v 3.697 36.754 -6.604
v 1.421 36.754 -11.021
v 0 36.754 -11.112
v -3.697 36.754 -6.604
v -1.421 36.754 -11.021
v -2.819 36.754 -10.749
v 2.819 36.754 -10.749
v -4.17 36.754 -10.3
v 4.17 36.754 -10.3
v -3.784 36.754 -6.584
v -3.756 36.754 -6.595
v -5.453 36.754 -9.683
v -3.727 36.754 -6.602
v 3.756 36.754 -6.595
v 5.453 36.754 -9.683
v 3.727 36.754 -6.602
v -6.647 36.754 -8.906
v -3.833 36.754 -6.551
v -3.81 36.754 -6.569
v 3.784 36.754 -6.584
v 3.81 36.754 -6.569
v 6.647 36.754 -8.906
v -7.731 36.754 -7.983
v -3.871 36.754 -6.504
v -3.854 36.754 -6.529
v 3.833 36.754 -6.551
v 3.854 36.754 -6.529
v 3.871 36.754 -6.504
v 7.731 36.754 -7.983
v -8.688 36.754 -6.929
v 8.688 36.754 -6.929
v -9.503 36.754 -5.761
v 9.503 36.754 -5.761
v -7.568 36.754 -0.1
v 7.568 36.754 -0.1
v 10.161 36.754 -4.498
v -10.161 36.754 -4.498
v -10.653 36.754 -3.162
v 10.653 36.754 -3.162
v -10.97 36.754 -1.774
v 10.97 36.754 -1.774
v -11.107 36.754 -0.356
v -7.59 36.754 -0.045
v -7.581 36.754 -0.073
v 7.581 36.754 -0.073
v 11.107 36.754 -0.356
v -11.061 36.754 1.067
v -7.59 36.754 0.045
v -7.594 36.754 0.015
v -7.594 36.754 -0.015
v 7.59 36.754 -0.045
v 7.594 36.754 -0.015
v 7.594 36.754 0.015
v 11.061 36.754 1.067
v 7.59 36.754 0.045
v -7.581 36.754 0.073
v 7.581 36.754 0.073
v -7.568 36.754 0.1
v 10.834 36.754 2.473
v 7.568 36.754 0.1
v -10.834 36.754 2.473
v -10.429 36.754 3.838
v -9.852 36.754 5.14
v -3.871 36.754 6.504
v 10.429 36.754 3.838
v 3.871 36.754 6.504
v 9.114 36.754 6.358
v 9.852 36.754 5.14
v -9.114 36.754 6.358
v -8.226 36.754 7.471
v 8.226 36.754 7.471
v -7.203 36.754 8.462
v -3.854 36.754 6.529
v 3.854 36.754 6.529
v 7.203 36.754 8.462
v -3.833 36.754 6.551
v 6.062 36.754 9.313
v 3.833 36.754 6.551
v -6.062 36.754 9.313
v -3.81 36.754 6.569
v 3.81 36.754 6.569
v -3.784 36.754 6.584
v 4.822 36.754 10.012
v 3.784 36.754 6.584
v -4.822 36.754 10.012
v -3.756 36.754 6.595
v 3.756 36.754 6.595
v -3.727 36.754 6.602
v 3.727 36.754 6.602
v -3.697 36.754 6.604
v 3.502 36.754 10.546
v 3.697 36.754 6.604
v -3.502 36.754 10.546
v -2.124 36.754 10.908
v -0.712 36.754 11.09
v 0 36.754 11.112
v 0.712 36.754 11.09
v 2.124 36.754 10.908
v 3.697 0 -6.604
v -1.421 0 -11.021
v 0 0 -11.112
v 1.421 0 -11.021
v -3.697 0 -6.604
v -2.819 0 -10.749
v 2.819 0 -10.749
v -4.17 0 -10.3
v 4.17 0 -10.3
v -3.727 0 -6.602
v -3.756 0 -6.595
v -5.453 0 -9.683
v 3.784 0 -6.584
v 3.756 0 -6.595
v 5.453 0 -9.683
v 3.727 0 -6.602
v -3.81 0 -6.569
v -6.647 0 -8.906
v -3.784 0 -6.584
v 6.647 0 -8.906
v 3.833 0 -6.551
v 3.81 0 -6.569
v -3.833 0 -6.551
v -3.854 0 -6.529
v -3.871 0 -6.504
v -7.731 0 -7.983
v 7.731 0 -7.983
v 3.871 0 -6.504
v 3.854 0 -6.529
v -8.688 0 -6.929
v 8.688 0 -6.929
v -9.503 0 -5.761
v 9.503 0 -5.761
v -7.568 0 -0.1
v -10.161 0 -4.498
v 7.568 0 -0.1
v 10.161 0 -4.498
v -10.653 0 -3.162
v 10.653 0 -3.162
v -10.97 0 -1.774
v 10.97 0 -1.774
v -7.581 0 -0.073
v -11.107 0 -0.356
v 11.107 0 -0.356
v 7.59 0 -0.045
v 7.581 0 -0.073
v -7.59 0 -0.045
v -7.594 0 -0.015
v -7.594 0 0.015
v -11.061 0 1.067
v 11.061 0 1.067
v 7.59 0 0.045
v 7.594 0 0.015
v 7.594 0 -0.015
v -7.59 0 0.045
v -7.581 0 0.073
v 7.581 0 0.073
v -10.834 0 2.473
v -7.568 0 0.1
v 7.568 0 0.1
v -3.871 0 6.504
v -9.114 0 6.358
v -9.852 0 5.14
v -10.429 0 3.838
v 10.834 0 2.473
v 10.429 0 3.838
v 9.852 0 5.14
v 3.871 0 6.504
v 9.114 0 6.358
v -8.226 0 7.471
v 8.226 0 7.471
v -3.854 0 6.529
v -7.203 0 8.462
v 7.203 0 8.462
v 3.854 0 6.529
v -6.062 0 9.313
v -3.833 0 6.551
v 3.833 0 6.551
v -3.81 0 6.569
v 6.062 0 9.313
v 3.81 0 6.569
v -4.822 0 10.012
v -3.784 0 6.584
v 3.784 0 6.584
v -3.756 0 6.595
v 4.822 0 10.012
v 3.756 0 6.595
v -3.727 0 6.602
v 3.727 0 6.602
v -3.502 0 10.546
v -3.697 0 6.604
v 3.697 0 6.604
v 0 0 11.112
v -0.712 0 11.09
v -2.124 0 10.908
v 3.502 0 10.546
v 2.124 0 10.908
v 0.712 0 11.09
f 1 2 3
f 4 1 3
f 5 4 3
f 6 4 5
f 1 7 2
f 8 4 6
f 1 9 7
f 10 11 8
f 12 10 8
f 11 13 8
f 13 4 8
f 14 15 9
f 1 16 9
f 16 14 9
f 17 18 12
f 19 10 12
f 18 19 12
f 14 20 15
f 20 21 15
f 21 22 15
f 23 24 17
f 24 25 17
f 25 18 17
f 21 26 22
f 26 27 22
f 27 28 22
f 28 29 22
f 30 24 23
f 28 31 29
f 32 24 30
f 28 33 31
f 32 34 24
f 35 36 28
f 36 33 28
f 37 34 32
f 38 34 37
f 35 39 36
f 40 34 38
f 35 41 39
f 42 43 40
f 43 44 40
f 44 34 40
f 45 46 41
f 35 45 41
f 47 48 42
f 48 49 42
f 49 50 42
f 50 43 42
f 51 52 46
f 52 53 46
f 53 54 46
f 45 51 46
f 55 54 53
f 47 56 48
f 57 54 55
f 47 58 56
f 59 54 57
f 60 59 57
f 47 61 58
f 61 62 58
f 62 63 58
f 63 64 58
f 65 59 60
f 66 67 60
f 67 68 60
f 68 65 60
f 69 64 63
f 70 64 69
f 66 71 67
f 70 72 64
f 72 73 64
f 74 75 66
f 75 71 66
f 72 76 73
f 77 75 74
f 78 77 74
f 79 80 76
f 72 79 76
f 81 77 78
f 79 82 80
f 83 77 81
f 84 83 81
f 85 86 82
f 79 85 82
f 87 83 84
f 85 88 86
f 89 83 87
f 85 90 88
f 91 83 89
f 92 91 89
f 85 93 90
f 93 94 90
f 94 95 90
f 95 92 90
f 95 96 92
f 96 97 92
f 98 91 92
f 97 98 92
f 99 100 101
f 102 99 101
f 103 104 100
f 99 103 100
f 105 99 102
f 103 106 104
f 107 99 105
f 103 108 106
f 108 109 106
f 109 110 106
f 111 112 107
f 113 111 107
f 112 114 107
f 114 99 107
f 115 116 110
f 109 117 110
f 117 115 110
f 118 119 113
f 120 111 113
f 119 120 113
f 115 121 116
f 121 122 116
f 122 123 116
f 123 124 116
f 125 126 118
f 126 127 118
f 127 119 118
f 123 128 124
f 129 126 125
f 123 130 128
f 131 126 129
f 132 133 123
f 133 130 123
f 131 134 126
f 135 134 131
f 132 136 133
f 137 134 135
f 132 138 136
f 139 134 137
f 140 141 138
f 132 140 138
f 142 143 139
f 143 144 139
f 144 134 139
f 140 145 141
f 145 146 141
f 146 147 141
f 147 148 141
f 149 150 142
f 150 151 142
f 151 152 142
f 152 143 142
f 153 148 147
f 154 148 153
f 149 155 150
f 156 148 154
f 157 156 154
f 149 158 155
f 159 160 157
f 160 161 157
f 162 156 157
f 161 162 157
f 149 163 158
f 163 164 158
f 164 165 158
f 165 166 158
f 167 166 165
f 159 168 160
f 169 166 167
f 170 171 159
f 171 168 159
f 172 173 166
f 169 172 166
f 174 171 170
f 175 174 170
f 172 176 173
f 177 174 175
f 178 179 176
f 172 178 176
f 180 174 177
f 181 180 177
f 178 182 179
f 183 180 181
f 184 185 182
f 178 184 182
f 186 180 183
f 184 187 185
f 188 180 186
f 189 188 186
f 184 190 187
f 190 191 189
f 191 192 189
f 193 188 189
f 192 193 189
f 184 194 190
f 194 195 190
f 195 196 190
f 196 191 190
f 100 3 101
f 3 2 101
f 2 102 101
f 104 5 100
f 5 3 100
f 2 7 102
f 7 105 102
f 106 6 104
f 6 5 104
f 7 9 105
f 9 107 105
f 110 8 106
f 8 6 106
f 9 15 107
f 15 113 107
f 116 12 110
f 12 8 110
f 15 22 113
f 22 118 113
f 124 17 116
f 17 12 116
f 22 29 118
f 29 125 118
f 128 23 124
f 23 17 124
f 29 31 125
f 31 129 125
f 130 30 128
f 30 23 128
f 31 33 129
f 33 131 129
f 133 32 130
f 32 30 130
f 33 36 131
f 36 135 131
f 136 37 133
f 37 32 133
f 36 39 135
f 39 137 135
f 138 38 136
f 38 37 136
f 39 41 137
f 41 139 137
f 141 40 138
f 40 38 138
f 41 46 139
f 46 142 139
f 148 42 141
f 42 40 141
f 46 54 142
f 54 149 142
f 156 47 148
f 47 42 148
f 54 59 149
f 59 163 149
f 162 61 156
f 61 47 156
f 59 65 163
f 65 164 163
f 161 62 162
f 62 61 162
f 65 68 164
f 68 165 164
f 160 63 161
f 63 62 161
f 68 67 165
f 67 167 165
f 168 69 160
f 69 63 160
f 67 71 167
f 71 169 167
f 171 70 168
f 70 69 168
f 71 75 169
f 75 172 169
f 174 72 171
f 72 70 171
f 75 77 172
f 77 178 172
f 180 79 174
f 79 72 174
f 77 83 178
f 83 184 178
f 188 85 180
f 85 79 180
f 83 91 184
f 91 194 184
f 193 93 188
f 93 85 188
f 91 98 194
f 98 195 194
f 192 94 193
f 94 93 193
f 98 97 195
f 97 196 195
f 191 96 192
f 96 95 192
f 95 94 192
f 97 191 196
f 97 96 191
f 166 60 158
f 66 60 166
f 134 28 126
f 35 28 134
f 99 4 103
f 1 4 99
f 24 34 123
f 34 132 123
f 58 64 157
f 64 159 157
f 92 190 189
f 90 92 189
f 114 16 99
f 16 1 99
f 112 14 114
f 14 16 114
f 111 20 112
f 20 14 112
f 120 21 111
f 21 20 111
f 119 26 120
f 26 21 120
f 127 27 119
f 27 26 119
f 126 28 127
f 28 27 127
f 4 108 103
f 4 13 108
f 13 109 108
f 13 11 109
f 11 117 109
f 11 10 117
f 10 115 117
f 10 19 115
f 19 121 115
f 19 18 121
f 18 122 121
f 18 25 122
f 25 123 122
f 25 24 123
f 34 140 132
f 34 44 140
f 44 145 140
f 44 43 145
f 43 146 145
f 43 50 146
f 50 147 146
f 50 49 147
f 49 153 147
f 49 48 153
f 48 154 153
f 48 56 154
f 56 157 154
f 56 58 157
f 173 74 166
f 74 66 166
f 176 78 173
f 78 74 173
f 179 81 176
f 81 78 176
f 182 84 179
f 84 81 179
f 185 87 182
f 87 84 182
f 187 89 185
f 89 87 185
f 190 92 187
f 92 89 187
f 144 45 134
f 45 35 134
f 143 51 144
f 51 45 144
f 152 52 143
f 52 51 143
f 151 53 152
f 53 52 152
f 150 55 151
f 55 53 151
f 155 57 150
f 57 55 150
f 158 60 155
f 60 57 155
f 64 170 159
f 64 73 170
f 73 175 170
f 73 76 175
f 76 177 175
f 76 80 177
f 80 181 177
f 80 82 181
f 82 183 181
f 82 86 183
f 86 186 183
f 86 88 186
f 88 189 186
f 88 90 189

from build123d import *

# Parameters (mm, degrees)
SKETCH1_R           = 11.1125
BOSS_EXTRUDE1_DEPTH = 36.7538
FILLET1_R           = 0.2


with BuildPart() as part:
    # Sketch1 → Boss-Extrude1 (new body)
    with BuildSketch(Plane(origin=(0, 0, 0), x_dir=(1, 0, 0), z_dir=(0, 1, 0))):
        Circle(SKETCH1_R)
        Polygon((7.625642355, 0), (3.812821178, 6.604), (-3.812821178, 6.604), (-7.625642355, 0), (-3.812821178, -6.604), (3.812821178, -6.604), align=None, mode=Mode.SUBTRACT)
    extrude(amount=BOSS_EXTRUDE1_DEPTH)

    # Fillet1
    fillet1_edges = [part.edges().sort_by_distance(p)[0] for p in [
        (7.625642355, 18.3769, 0),
        (3.812821178, 18.3769, -6.604),
        (-3.812821178, 18.3769, -6.604),
        (-7.625642355, 18.3769, 0),
        (-3.812821178, 18.3769, 6.604),
        (3.812821178, 18.3769, 6.604),
    ]]
    fillet(fillet1_edges, radius=FILLET1_R)


solid = part.part
